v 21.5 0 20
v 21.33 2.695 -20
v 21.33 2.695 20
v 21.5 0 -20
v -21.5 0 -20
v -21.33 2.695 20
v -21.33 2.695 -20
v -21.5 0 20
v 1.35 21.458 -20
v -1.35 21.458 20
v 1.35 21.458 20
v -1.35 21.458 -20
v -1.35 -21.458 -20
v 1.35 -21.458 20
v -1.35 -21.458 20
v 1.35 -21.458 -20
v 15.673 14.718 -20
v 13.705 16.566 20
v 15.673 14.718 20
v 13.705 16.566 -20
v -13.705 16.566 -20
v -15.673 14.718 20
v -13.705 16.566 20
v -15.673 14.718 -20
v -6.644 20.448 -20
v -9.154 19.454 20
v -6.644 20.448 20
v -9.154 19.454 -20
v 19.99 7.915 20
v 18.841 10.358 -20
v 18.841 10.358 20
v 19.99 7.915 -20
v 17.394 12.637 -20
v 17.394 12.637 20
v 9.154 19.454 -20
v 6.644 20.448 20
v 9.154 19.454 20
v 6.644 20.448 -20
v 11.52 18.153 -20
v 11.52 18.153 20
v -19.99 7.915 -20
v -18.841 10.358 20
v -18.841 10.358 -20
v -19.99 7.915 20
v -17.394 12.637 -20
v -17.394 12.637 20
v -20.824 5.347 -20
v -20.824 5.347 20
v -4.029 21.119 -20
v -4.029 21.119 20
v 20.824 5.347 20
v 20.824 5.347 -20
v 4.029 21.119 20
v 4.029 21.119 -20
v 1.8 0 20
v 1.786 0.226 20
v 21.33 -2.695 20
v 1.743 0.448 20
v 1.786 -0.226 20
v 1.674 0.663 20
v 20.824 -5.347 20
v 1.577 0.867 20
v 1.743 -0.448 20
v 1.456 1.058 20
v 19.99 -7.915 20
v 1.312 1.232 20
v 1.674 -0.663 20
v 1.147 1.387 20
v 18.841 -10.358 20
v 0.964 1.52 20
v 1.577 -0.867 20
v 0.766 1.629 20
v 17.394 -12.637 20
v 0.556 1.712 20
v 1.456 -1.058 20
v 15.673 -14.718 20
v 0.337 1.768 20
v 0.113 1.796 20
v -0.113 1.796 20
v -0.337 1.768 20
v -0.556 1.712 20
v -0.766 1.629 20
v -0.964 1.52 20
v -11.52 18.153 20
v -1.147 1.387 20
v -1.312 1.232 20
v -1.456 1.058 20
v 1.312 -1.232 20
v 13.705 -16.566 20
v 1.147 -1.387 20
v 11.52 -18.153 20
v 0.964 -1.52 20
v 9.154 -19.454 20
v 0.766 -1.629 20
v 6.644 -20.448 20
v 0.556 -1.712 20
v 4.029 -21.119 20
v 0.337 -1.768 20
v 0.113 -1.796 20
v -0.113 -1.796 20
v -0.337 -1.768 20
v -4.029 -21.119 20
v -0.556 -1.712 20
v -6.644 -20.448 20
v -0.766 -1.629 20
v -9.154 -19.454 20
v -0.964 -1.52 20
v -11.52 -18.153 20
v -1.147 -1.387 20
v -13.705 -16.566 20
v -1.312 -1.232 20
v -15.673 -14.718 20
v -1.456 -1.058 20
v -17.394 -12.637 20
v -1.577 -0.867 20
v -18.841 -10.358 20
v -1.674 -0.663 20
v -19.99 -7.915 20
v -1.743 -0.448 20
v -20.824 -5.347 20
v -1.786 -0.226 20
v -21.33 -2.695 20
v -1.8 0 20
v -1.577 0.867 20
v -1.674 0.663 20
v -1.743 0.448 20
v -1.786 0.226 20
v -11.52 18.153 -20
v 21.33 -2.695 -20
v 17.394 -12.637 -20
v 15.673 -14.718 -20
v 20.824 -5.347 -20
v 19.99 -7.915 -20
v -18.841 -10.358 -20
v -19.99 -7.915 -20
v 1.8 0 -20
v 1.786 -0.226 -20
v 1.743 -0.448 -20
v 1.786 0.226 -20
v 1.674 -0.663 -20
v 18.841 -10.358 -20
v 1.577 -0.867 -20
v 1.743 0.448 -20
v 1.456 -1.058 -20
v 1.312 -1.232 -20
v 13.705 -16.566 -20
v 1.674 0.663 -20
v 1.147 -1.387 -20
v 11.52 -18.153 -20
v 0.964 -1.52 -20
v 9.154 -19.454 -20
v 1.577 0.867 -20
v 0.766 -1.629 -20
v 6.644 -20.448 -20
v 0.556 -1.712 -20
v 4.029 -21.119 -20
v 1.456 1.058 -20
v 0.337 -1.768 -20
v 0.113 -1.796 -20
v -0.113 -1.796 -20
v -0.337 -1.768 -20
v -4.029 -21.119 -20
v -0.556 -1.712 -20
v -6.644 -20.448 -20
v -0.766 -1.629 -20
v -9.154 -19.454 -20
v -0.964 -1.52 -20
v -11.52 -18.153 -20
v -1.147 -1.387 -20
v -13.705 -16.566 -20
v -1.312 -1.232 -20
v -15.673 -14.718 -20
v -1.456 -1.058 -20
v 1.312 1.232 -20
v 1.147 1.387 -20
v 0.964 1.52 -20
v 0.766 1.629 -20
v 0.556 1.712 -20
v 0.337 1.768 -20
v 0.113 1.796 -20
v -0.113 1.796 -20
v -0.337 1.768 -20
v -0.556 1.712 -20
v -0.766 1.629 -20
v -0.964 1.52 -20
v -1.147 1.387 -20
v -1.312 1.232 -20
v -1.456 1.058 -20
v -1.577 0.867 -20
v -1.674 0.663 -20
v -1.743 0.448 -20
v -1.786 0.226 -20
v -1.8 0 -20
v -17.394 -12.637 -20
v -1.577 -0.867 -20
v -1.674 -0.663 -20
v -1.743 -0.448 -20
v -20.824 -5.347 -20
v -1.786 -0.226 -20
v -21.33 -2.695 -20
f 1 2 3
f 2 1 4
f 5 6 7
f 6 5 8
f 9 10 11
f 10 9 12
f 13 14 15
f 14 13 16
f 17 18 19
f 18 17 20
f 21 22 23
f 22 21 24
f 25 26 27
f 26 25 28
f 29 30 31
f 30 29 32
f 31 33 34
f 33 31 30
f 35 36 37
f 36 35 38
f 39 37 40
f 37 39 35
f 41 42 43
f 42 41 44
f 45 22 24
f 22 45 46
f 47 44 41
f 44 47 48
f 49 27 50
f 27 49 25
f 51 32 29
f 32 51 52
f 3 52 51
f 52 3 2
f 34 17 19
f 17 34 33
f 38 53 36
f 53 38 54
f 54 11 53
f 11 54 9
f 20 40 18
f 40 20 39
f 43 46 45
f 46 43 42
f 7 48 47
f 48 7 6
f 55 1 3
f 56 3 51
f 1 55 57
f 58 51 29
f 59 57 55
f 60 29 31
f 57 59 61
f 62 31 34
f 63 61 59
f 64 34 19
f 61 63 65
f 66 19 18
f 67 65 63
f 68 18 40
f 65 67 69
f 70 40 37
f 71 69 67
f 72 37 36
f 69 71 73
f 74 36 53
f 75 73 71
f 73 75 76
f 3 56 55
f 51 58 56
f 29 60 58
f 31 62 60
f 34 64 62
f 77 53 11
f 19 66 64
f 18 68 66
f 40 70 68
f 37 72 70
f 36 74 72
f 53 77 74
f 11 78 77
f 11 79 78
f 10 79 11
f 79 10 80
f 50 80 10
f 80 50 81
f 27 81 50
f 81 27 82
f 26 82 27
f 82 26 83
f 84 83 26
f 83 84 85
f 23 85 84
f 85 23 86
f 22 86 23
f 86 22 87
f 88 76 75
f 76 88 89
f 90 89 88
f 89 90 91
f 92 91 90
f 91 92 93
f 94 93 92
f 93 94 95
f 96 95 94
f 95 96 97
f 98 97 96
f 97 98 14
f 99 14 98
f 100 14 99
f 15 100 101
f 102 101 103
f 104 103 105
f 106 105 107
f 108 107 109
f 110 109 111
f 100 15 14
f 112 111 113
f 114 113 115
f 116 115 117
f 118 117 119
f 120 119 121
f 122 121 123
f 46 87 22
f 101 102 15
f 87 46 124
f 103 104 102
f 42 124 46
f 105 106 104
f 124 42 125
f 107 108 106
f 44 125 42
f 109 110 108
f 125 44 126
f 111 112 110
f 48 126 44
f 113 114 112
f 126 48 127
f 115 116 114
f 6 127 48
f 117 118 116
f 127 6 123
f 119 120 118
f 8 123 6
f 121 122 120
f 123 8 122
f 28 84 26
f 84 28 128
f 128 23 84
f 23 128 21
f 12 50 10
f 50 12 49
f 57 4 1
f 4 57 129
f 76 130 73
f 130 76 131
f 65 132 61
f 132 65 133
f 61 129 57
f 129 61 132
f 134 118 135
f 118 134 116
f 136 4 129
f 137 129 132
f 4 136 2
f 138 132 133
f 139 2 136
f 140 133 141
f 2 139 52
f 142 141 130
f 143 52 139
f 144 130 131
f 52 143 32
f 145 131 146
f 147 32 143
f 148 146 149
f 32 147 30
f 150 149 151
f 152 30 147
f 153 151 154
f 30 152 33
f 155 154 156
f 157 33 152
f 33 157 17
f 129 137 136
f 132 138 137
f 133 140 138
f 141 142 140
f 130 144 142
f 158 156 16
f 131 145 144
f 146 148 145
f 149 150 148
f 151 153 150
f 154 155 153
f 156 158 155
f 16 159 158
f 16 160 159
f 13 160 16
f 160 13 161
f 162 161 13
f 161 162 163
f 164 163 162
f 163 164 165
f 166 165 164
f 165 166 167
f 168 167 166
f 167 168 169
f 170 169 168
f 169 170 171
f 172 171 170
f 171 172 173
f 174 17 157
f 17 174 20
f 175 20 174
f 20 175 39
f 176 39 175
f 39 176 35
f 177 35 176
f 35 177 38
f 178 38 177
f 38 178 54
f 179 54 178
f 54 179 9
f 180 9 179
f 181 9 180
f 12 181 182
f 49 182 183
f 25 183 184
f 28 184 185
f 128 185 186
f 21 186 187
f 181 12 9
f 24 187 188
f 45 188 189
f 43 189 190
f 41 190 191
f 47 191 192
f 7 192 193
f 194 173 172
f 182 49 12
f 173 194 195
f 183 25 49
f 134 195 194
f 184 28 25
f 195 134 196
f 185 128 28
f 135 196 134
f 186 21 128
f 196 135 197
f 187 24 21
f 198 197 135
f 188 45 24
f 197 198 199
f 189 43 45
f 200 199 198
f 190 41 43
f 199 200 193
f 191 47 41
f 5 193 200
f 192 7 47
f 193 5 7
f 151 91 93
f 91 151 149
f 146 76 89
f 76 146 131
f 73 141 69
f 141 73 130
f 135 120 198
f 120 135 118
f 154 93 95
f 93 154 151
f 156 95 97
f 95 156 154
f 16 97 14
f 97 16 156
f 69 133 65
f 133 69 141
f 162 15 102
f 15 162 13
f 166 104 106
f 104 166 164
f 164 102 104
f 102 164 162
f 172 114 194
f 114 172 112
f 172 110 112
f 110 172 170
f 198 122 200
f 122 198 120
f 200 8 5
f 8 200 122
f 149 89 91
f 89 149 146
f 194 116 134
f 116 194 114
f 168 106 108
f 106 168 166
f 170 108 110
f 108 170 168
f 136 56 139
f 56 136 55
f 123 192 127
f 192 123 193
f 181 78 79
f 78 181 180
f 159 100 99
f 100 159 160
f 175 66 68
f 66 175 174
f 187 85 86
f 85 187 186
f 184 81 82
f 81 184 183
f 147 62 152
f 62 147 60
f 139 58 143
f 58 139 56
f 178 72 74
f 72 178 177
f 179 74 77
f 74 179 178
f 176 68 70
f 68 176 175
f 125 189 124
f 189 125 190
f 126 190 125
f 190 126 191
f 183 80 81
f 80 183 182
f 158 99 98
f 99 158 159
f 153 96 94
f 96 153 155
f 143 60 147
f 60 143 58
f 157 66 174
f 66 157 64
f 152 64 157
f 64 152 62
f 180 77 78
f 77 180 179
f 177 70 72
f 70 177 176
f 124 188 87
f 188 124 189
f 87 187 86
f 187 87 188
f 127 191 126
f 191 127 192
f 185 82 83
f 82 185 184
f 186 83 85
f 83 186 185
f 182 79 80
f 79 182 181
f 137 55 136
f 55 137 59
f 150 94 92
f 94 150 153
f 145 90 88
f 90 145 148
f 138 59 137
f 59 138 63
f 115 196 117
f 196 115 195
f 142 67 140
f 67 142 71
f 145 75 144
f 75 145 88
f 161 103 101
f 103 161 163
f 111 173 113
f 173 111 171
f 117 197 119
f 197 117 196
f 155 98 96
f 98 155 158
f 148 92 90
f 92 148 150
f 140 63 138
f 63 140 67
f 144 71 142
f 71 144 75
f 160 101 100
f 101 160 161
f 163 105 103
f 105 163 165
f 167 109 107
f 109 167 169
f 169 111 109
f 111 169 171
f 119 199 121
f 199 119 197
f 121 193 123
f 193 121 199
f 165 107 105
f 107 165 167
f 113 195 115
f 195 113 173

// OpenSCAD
$fn = 50;


difference() {
	union() {
		translate(v = [0, 0, -20.0000000000]) {
			cylinder(h = 40, r = 21.5000000000);
		}
	}
	union() {
		translate(v = [0, 0, -100.0000000000]) {
			cylinder(h = 200, r = 1.8000000000);
		}
	}
}
